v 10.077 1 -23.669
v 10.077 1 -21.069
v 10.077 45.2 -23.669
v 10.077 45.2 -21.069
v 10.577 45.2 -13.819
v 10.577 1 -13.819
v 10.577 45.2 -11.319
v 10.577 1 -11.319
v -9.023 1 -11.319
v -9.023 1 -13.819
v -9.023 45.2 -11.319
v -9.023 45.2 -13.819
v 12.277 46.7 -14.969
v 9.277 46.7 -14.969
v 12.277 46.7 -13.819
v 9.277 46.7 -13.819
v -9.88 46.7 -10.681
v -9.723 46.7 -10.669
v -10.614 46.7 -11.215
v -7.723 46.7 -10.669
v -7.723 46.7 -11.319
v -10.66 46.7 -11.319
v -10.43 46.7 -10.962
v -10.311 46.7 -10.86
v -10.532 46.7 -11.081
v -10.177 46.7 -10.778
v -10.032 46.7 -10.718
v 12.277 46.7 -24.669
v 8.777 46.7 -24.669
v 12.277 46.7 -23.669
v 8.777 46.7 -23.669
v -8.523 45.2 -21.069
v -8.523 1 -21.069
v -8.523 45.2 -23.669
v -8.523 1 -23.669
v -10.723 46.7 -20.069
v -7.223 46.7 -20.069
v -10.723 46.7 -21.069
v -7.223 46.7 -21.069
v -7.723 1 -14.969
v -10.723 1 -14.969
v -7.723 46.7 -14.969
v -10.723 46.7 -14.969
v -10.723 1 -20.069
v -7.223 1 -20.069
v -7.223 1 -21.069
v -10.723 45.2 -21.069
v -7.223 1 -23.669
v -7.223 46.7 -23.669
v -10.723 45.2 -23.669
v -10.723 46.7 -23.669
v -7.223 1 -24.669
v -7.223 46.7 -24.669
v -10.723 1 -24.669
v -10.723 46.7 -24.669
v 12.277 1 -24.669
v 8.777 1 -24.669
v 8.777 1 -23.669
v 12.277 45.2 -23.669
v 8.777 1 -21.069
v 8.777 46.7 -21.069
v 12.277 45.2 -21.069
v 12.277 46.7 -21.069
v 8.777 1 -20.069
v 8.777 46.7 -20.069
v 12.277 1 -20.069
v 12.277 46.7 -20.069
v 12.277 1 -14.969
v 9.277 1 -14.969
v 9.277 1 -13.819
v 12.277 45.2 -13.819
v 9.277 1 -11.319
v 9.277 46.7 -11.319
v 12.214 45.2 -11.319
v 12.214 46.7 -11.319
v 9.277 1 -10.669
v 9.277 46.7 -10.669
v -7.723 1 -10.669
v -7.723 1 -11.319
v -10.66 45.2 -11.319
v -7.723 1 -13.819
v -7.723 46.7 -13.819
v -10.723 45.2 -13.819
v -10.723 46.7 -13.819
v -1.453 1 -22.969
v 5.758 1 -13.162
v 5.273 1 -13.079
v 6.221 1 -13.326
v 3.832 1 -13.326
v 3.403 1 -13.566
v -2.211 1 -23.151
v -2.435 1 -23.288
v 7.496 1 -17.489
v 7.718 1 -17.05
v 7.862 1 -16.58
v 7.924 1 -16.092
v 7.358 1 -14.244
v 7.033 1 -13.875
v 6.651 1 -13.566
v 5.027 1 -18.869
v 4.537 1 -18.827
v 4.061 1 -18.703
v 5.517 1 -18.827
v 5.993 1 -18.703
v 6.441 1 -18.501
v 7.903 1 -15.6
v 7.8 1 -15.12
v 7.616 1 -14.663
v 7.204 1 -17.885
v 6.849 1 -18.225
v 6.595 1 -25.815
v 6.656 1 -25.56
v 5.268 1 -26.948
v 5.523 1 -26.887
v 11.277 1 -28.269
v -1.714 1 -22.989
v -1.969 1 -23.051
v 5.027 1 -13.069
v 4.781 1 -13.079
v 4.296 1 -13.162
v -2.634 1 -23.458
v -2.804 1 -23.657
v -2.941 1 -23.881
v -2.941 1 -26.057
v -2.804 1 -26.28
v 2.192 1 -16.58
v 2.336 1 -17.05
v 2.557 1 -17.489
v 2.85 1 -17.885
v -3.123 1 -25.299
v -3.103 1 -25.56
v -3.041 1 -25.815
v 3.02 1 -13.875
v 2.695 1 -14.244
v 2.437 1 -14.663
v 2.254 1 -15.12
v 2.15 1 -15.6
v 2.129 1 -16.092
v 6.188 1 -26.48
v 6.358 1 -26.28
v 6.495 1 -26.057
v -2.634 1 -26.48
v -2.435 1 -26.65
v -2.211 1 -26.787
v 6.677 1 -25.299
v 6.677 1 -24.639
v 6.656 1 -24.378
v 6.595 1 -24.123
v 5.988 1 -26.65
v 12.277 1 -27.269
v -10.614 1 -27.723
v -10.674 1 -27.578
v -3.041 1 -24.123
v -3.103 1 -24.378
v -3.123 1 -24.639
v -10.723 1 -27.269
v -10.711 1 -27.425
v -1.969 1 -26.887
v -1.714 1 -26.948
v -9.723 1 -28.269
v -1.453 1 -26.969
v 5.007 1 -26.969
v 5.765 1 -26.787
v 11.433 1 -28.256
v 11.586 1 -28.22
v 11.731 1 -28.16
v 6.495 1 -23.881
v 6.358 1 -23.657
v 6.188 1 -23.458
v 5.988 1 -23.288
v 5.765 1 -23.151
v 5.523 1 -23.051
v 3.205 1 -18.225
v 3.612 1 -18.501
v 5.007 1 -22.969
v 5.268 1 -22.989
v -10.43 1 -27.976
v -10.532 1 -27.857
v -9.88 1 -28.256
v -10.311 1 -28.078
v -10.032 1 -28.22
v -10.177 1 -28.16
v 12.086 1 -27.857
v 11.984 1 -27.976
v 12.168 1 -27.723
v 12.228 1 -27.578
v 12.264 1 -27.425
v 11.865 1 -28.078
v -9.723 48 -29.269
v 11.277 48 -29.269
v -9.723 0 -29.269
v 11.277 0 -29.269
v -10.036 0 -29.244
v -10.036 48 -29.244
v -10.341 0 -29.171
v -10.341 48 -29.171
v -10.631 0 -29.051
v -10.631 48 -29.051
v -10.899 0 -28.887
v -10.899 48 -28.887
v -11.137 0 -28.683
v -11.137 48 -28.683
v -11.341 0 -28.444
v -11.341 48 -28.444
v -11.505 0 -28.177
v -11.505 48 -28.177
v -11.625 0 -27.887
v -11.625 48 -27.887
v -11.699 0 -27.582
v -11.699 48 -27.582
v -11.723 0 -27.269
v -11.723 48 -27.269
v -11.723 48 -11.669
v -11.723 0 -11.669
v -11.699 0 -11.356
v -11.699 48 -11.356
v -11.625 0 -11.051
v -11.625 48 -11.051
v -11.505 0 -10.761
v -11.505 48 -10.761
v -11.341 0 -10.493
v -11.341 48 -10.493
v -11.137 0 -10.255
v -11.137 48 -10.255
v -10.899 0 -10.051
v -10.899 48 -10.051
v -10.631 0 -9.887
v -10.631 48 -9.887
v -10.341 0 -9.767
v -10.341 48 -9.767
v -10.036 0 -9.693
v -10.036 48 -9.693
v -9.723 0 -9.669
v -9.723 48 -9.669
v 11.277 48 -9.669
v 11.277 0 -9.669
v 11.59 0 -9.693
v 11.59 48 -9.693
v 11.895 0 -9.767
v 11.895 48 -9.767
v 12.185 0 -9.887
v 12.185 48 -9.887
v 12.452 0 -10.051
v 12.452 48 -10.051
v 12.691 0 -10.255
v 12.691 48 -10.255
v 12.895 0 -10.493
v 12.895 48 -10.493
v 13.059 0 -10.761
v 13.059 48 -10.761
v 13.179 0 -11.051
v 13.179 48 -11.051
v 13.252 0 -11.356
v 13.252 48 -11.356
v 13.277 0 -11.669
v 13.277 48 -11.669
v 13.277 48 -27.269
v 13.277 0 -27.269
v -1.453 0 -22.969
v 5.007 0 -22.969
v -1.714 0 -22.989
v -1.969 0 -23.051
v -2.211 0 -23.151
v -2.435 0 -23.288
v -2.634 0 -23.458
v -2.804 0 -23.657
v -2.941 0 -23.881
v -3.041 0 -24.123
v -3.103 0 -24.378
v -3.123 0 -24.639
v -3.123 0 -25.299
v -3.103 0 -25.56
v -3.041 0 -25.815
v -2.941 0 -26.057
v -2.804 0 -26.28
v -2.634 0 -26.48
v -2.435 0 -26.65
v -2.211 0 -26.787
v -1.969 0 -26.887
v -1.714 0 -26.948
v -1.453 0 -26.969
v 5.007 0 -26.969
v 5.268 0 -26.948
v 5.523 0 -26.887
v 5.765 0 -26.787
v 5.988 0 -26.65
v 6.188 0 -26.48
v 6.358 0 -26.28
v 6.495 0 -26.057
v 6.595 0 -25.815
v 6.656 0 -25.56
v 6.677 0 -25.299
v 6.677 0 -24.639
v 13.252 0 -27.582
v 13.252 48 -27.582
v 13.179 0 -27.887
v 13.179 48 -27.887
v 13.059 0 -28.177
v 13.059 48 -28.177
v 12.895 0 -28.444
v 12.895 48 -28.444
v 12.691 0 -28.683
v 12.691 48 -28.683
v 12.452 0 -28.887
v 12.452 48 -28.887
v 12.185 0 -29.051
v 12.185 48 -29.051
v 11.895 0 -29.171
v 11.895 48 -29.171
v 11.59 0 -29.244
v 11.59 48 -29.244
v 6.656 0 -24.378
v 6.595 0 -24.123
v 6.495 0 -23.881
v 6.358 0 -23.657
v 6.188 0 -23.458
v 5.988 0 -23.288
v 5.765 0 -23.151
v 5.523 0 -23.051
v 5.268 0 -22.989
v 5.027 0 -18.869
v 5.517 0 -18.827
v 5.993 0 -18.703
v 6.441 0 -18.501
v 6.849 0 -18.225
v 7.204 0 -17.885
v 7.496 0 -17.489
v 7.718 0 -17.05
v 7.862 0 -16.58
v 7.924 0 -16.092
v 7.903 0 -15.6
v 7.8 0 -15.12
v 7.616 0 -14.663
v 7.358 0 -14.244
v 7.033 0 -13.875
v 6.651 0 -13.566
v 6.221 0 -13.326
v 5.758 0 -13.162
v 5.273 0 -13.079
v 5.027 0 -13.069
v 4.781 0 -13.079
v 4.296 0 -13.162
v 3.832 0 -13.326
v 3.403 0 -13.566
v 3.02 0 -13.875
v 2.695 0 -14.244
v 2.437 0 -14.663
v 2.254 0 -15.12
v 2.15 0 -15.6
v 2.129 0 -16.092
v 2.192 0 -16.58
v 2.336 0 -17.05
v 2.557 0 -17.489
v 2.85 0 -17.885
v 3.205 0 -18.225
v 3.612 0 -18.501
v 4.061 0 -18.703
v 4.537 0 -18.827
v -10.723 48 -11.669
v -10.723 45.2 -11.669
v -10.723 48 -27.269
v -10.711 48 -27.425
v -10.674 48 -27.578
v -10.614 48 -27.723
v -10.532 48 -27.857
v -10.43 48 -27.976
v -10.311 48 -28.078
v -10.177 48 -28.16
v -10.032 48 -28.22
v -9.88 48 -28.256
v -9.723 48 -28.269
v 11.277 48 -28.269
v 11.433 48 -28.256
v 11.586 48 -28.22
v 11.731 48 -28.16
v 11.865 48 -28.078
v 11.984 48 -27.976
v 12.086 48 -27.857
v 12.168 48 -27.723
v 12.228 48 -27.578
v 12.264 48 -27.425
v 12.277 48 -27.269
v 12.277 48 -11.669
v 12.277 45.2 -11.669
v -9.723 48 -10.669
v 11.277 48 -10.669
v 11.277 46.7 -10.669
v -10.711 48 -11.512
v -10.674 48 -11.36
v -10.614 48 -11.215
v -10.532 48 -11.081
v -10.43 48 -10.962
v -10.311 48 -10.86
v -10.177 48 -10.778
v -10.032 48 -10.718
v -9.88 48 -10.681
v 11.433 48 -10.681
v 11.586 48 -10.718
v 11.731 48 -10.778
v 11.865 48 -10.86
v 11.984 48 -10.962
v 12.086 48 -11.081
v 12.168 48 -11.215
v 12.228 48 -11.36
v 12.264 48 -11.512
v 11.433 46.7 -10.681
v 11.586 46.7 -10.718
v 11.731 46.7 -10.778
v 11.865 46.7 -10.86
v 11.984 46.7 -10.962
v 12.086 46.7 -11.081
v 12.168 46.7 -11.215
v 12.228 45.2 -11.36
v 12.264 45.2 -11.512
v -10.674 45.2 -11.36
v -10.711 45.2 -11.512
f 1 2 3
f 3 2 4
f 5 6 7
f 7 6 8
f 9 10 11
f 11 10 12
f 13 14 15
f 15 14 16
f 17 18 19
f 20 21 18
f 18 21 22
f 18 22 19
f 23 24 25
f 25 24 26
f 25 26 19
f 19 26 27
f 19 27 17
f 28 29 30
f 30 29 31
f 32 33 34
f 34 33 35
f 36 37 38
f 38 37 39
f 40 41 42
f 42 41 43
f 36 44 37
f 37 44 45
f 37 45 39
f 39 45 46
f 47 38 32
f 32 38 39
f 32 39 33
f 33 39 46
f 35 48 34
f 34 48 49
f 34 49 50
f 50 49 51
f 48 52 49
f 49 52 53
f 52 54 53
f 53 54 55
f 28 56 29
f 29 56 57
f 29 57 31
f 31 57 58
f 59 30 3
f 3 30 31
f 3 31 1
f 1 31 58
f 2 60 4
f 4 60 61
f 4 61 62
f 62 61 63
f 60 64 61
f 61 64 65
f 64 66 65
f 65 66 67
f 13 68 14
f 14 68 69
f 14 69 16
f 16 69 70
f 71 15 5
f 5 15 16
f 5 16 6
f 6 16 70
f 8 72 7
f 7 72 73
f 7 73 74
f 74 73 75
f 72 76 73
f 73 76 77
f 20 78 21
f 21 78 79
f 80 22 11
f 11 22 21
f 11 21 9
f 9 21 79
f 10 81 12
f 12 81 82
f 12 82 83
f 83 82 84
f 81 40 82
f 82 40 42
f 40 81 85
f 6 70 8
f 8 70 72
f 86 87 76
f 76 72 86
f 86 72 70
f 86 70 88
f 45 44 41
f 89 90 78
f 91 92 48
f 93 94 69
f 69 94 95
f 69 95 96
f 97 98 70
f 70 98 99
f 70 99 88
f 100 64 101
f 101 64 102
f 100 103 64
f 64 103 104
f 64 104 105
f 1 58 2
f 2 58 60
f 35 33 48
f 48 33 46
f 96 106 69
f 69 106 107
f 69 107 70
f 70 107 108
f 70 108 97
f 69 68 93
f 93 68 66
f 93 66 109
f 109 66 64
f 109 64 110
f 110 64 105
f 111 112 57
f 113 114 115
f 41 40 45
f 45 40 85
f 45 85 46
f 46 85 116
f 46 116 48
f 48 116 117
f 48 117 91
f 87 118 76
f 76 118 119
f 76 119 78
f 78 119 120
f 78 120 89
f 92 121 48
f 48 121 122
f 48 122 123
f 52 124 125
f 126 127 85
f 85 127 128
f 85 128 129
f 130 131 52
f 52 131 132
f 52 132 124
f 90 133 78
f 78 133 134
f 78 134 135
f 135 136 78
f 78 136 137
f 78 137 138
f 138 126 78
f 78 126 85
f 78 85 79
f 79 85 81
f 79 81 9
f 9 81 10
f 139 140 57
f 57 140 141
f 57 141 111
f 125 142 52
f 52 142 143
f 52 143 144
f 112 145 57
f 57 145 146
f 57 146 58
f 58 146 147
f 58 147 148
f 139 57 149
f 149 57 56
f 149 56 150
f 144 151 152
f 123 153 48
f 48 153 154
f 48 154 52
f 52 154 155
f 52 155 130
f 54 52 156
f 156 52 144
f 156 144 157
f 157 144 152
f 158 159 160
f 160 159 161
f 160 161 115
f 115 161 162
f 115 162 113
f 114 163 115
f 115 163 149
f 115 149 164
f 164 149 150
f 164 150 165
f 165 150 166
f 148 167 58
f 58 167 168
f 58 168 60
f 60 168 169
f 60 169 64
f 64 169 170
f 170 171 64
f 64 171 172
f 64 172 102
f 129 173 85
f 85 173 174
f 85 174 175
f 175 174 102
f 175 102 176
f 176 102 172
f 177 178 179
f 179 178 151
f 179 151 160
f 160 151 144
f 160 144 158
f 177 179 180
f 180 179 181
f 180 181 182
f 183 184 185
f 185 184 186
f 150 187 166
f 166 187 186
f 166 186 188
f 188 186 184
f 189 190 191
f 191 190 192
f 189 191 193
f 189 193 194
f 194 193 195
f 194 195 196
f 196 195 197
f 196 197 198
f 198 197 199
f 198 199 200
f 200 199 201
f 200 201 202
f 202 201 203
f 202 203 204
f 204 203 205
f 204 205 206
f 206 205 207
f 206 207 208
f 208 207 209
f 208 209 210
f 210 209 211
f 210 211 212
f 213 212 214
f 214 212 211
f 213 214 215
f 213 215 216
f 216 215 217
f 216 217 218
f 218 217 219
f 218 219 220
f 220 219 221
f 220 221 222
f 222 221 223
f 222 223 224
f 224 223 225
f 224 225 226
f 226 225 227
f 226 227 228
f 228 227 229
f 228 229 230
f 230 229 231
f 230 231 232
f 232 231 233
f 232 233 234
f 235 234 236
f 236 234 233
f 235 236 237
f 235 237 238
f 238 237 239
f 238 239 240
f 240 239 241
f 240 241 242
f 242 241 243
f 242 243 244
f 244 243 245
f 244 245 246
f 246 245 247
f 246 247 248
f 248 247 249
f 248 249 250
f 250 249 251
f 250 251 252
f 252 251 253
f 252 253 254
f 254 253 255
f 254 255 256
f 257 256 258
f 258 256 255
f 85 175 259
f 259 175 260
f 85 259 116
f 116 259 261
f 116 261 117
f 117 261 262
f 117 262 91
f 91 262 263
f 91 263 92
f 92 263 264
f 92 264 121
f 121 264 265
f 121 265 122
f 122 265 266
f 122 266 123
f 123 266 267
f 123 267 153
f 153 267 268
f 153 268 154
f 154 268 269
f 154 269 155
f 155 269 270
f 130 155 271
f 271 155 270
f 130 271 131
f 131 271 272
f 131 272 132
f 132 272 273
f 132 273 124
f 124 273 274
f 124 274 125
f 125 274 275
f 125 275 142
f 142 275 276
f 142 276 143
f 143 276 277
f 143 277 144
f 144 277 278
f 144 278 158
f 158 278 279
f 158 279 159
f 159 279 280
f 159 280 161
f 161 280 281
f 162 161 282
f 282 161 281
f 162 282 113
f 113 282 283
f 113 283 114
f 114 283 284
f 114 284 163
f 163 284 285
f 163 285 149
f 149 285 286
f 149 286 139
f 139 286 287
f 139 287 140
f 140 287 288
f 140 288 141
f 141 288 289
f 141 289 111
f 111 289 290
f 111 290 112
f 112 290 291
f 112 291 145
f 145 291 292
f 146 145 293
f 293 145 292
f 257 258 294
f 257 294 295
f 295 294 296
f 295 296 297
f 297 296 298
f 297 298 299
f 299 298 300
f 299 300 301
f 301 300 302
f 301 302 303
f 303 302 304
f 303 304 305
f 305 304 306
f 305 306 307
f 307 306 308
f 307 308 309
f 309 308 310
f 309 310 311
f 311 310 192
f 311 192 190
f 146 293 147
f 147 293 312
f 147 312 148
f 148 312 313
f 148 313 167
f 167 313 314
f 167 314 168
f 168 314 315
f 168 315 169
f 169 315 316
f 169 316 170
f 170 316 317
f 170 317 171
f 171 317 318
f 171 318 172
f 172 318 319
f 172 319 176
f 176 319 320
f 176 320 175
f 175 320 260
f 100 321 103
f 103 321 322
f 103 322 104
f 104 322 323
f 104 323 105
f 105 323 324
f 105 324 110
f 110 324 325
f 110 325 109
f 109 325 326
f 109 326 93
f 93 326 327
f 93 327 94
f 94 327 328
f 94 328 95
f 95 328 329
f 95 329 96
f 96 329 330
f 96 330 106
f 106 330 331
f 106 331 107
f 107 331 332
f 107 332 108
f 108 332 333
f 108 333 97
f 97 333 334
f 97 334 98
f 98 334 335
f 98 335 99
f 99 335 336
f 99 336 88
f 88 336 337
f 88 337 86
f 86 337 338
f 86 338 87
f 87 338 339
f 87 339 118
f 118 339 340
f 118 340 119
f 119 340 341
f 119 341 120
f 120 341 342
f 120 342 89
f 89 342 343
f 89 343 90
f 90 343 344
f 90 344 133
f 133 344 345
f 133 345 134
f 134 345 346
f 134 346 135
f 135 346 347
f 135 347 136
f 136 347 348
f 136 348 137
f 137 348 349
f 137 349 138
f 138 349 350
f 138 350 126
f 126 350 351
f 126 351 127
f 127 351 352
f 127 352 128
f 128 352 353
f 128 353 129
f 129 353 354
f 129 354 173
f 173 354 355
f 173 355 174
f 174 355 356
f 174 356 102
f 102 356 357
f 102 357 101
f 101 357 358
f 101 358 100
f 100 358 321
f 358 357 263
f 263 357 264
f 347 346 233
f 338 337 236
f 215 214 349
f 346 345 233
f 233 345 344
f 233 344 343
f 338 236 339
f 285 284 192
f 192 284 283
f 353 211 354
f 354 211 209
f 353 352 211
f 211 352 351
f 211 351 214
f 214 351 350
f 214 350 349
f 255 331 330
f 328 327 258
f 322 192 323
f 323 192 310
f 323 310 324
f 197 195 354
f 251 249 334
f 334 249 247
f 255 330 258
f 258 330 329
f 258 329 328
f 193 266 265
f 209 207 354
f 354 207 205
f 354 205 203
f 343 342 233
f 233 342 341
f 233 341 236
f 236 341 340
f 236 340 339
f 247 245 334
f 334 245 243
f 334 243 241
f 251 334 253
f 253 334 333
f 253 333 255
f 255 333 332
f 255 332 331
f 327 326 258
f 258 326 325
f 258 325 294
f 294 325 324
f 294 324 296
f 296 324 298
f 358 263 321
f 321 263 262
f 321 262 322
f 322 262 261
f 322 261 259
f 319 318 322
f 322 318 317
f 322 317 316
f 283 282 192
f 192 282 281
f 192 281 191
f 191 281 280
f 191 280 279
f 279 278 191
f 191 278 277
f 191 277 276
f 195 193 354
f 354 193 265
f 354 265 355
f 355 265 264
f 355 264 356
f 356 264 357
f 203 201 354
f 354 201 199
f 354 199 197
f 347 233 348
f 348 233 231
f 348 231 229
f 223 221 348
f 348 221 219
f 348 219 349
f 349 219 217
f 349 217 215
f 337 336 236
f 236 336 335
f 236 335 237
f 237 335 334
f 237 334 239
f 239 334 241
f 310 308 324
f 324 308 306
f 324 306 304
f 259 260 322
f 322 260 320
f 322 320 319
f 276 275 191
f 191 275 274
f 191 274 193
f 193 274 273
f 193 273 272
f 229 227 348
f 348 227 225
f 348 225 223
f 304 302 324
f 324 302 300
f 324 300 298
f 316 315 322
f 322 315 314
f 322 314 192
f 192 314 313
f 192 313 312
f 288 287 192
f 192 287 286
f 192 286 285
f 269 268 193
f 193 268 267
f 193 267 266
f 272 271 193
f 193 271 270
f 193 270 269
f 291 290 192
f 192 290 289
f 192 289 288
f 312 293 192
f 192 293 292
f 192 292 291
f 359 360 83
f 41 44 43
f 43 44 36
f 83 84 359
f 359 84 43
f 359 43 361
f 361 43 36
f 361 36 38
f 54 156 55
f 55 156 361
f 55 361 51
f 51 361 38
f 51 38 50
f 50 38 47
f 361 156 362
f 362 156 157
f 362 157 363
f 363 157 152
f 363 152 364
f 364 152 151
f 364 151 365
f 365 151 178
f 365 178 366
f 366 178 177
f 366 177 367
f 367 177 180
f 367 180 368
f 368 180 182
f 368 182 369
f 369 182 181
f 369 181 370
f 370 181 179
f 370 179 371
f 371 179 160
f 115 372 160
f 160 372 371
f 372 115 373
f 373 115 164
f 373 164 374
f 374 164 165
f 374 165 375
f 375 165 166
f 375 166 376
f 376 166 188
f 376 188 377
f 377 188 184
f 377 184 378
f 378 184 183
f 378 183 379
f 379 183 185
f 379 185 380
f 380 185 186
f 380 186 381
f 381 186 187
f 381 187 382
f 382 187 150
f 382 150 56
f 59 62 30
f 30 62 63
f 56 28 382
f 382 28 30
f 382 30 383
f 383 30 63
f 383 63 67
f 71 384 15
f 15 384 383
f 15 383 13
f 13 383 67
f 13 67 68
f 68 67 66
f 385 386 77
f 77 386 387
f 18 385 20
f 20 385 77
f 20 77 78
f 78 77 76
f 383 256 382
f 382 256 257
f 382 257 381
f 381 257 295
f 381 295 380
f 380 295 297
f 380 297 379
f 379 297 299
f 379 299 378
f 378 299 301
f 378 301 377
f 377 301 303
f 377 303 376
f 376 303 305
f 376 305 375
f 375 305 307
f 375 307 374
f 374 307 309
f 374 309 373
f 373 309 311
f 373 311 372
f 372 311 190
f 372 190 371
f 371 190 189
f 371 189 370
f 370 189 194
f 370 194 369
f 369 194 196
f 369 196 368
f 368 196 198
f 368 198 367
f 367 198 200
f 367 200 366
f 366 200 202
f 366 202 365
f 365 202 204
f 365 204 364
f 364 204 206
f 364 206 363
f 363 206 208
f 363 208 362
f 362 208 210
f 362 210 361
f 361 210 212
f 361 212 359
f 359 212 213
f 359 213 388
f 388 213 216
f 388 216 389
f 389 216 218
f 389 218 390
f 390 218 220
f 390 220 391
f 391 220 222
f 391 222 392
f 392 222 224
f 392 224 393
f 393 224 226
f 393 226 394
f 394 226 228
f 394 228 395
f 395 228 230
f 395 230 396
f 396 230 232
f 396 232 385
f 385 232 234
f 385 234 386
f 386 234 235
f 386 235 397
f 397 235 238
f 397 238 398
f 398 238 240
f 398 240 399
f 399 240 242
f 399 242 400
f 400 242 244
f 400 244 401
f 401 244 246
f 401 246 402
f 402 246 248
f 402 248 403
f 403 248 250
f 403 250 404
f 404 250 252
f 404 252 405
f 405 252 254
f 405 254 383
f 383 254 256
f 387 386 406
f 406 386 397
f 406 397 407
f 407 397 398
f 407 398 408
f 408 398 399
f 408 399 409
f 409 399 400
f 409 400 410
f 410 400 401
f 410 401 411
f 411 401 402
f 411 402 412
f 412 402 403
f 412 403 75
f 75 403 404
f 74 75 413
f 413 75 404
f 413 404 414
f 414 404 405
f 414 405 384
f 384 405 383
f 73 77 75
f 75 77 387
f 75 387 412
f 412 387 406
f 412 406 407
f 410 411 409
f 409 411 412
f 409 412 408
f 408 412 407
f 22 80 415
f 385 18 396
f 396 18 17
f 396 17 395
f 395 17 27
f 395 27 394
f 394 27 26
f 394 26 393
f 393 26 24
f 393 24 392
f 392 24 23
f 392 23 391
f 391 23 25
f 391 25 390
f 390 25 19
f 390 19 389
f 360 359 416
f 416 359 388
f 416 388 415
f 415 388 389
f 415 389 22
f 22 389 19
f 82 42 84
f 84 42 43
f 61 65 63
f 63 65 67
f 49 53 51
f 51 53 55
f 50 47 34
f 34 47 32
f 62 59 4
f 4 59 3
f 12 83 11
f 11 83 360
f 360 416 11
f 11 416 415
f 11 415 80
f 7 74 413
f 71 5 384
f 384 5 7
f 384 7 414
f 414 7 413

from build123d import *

# Parameters (mm, degrees)
SKETCH_1_R          = 2.9
EXTRUDE_3_DEPTH     = 1
EXTRUDE_6_DEPTH     = 47
CUT_EXTRUDE_START   = -1.3
CUT_EXTRUDE_1_DEPTH = 1.3
CUT_EXTRUDE_START_2 = -1.5
SKETCH_6_W          = 2.2
SKETCH_6_H          = 2.6
CUT_EXTRUDE_2_DEPTH = 1.5


with BuildPart() as part:
    # Эскиз1 → Бобышка-Вытянуть3 (new body)
    with BuildSketch(Plane(origin=(0, 0, 0), x_dir=(1, 0, 0), z_dir=(0, 1, 0))):
        with BuildLine():
            Line((-11.72321672, 11.668784432), (-11.72321672, 27.268784432))
            ThreePointArc((-11.72321672, 27.268784432), (-11.137430283, 28.682997994), (-9.72321672, 29.268784432))
            Line((-9.72321672, 29.268784432), (11.27678328, 29.268784432))
            ThreePointArc((11.27678328, 29.268784432), (12.690996842, 28.682997994), (13.27678328, 27.268784432))
            Line((13.27678328, 27.268784432), (13.27678328, 11.668784432))
            ThreePointArc((13.27678328, 11.668784432), (12.690996842, 10.254570869), (11.27678328, 9.668784432))
            Line((11.27678328, 9.668784432), (9.27678328, 9.668784432))
            Line((9.27678328, 9.668784432), (-9.72321672, 9.668784432))
            ThreePointArc((-9.72321672, 9.668784432), (-11.137430283, 10.254570869), (-11.72321672, 11.668784432))
        make_face()
        with Locations(Location((5.02678328, 15.968784432, 0), (0, 0, 270))):
            Circle(SKETCH_1_R, mode=Mode.SUBTRACT)
        with BuildLine():
            Line((-1.45321672, 26.968784432), (5.00678328, 26.968784432))
            ThreePointArc((5.00678328, 26.968784432), (6.187651604, 26.479652756), (6.67678328, 25.298784432))
            Line((6.67678328, 25.298784432), (6.67678328, 24.638784432))
            ThreePointArc((6.67678328, 24.638784432), (6.187651604, 23.457916107), (5.00678328, 22.968784432))
            Line((5.00678328, 22.968784432), (-1.45321672, 22.968784432))
            ThreePointArc((-1.45321672, 22.968784432), (-2.634085045, 23.457916107), (-3.12321672, 24.638784432))
            Line((-3.12321672, 24.638784432), (-3.12321672, 25.298784432))
            ThreePointArc((-3.12321672, 25.298784432), (-2.634085045, 26.479652756), (-1.45321672, 26.968784432))
        make_face(mode=Mode.SUBTRACT)
    extrude(amount=EXTRUDE_3_DEPTH)

    # Эскиз3 → Бобышка-Вытянуть6 (add)
    with BuildSketch(Plane(origin=(0, 1, 0), x_dir=(1, 0, 0), z_dir=(0, 1, 0))):
        with BuildLine():
            Line((-11.72321672, 27.268784432), (-11.72321672, 11.668784432))
            ThreePointArc((-11.72321672, 11.668784432), (-11.137430283, 10.254570869), (-9.72321672, 9.668784432))
            Line((-9.72321672, 9.668784432), (11.27678328, 9.668784432))
            ThreePointArc((11.27678328, 9.668784432), (12.690996842, 10.254570869), (13.27678328, 11.668784432))
            Line((13.27678328, 11.668784432), (13.27678328, 27.268784432))
            ThreePointArc((13.27678328, 27.268784432), (12.690996842, 28.682997994), (11.27678328, 29.268784432))
            Line((11.27678328, 29.268784432), (-9.72321672, 29.268784432))
            ThreePointArc((-9.72321672, 29.268784432), (-11.137430283, 28.682997994), (-11.72321672, 27.268784432))
        make_face()
        with BuildLine():
            Line((12.27678328, 14.968784432), (9.27678328, 14.968784432))
            Line((9.27678328, 14.968784432), (9.27678328, 13.818784432))
            Line((9.27678328, 13.818784432), (10.57678328, 13.818784432))
            Line((10.57678328, 13.818784432), (10.57678328, 11.318784432))
            Line((10.57678328, 11.318784432), (9.27678328, 11.318784432))
            Line((9.27678328, 11.318784432), (9.27678328, 10.668784432))
            Line((9.27678328, 10.668784432), (-7.72321672, 10.668784432))
            Line((-7.72321672, 10.668784432), (-7.72321672, 11.318784432))
            Line((-7.72321672, 11.318784432), (-9.02321672, 11.318784432))
            Line((-9.02321672, 11.318784432), (-9.02321672, 13.818784432))
            Line((-9.02321672, 13.818784432), (-7.72321672, 13.818784432))
            Line((-7.72321672, 13.818784432), (-7.72321672, 14.968784432))
            Line((-7.72321672, 14.968784432), (-10.72321672, 14.968784432))
            Line((-10.72321672, 14.968784432), (-10.72321672, 20.068784432))
            Line((-10.72321672, 20.068784432), (-7.22321672, 20.068784432))
            Line((-7.22321672, 20.068784432), (-7.22321672, 21.068784432))
            Line((-7.22321672, 21.068784432), (-8.52321672, 21.068784432))
            Line((-8.52321672, 21.068784432), (-8.52321672, 23.668784432))
            Line((-8.52321672, 23.668784432), (-7.22321672, 23.668784432))
            Line((-7.22321672, 23.668784432), (-7.22321672, 24.668784432))
            Line((-7.22321672, 24.668784432), (-10.72321672, 24.668784432))
            Line((-10.72321672, 24.668784432), (-10.72321672, 27.268784432))
            ThreePointArc((-10.72321672, 27.268784432), (-10.430323502, 27.975891213), (-9.72321672, 28.268784432))
            Line((-9.72321672, 28.268784432), (11.27678328, 28.268784432))
            ThreePointArc((11.27678328, 28.268784432), (11.983890061, 27.975891213), (12.27678328, 27.268784432))
            Line((12.27678328, 27.268784432), (12.27678328, 24.668784432))
            Line((12.27678328, 24.668784432), (8.77678328, 24.668784432))
            Line((8.77678328, 24.668784432), (8.77678328, 23.668784432))
            Line((8.77678328, 23.668784432), (10.07678328, 23.668784432))
            Line((10.07678328, 23.668784432), (10.07678328, 21.068784432))
            Line((10.07678328, 21.068784432), (8.77678328, 21.068784432))
            Line((8.77678328, 21.068784432), (8.77678328, 20.068784432))
            Line((8.77678328, 20.068784432), (12.27678328, 20.068784432))
            Line((12.27678328, 20.068784432), (12.27678328, 14.968784432))
        make_face(mode=Mode.SUBTRACT)
    extrude(amount=EXTRUDE_6_DEPTH)

    # Эскиз5 → Вырез-Вытянуть1 (cut)
    with BuildSketch(Plane(origin=(0, 48, 0), x_dir=(1, 0, 0), z_dir=(0, 1, 0)).offset(CUT_EXTRUDE_START)):
        with BuildLine():
            Line((-9.72321672, 28.268784432), (11.27678328, 28.268784432))
            ThreePointArc((11.27678328, 28.268784432), (11.983890061, 27.975891213), (12.27678328, 27.268784432))
            Line((12.27678328, 27.268784432), (12.27678328, 11.668784432))
            ThreePointArc((12.27678328, 11.668784432), (11.983890061, 10.961677651), (11.27678328, 10.668784432))
            Line((11.27678328, 10.668784432), (-9.72321672, 10.668784432))
            ThreePointArc((-9.72321672, 10.668784432), (-10.430323502, 10.961677651), (-10.72321672, 11.668784432))
            Line((-10.72321672, 11.668784432), (-10.72321672, 27.268784432))
            ThreePointArc((-10.72321672, 27.268784432), (-10.430323502, 27.975891213), (-9.72321672, 28.268784432))
        make_face()
    extrude(amount=CUT_EXTRUDE_1_DEPTH, mode=Mode.SUBTRACT)

    # Эскиз6 → Вырез-Вытянуть2 (cut)
    with BuildSketch(Plane(origin=(0, 46.7, 0), x_dir=(1, 0, 0), z_dir=(0, 1, 0)).offset(CUT_EXTRUDE_START_2)):
        with Locations((-9.62321672, 22.368784432)):
            Rectangle(SKETCH_6_W, SKETCH_6_H)
        with Locations((11.17678328, 22.368784432)):
            Rectangle(SKETCH_6_W, SKETCH_6_H)
        with BuildLine():
            Line((10.57678328, 13.818784432), (10.57678328, 11.318784432))
            Line((10.57678328, 11.318784432), (12.213532979, 11.318784432))
            ThreePointArc((12.213532979, 11.318784432), (12.260843669, 11.490949817), (12.27678328, 11.668784432))
            Line((12.27678328, 11.668784432), (12.27678328, 13.818784432))
            Line((12.27678328, 13.818784432), (10.57678328, 13.818784432))
        make_face()
        with BuildLine():
            Line((-9.02321672, 13.818784432), (-10.72321672, 13.818784432))
            Line((-10.72321672, 13.818784432), (-10.72321672, 11.668784432))
            ThreePointArc((-10.72321672, 11.668784432), (-10.70727711, 11.490949817), (-10.65996642, 11.318784432))
            Line((-10.65996642, 11.318784432), (-9.02321672, 11.318784432))
            Line((-9.02321672, 11.318784432), (-9.02321672, 13.818784432))
        make_face()
    extrude(amount=CUT_EXTRUDE_2_DEPTH, mode=Mode.SUBTRACT)


solid = part.part
